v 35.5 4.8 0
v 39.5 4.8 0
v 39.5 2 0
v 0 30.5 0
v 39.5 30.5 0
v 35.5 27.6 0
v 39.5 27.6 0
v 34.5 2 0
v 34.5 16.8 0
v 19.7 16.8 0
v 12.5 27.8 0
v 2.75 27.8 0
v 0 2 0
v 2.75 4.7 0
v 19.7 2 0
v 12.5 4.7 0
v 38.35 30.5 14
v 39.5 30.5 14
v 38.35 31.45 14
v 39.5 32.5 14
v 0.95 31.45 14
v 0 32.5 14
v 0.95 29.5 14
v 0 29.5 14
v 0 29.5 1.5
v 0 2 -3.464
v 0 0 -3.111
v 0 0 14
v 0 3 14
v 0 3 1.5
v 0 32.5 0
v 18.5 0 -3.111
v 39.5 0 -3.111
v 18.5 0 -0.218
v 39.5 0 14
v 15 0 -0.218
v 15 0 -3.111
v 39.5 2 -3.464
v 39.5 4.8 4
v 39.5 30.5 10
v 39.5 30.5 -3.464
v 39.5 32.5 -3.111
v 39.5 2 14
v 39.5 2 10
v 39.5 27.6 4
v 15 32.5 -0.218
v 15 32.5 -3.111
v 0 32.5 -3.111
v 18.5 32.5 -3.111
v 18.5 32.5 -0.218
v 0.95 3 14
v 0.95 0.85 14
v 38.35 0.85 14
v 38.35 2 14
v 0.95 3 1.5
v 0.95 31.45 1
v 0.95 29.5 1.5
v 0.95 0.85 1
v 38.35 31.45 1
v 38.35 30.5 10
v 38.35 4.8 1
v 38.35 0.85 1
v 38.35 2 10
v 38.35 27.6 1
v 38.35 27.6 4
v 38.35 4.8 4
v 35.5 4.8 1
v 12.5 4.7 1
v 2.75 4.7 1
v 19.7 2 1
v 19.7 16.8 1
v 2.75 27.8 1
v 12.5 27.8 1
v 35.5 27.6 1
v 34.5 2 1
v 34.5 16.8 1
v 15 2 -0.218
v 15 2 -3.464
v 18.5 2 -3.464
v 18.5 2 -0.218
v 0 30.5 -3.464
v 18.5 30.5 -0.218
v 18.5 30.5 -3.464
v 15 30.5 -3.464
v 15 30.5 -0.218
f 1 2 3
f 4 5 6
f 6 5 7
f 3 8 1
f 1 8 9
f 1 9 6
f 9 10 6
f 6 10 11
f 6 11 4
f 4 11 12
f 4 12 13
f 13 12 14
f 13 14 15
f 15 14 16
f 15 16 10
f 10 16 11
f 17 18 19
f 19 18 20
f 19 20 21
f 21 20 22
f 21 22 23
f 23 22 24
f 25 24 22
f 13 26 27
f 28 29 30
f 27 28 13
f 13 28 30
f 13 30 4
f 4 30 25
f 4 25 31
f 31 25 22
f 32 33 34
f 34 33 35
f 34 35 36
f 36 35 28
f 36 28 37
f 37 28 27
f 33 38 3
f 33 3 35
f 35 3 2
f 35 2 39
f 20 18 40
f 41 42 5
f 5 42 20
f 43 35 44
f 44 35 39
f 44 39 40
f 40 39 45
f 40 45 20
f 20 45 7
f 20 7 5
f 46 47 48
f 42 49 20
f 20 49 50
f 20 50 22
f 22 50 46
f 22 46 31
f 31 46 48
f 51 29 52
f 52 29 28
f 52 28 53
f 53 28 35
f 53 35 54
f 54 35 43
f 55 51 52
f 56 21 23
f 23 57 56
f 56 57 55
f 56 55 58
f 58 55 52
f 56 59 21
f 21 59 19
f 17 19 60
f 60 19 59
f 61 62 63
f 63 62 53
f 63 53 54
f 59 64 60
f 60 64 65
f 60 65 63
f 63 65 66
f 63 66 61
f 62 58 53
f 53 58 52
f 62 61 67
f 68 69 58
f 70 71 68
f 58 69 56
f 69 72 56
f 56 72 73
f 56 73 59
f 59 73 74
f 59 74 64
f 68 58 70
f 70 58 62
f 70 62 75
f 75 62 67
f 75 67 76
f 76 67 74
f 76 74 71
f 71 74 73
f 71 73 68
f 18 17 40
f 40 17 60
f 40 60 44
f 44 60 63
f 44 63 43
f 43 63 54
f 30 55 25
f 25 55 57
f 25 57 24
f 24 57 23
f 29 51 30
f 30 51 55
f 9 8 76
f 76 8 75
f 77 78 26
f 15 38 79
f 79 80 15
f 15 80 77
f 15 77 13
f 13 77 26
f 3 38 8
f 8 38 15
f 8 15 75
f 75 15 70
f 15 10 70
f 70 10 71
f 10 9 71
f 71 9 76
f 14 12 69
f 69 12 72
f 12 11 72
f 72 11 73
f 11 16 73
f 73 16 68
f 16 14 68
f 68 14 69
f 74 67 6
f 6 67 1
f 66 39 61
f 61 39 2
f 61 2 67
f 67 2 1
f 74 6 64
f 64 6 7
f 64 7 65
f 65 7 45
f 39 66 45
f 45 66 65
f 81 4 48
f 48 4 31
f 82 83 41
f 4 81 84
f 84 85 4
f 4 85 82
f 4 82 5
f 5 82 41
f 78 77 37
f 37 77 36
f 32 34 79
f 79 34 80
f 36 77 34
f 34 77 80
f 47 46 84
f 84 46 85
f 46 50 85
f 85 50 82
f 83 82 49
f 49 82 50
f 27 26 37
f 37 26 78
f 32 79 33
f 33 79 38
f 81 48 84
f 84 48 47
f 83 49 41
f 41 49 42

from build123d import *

# Parameters (mm, degrees)
ESQUISSE1_W              = 39.5
ESQUISSE1_H              = 32.5
BOSS_EXTRU_1_DEPTH       = 14
ESQUISSE2_W              = 37.4
ESQUISSE2_H              = 30.6
ENL_V_MAT_EXTRU_1_DEPTH  = 13
ESQUISSE3_W              = 4
ESQUISSE3_H              = 28.5
ENL_V_MAT_EXTRU_2_DEPTH  = 5
ESQUISSE4_W              = 12.5
ESQUISSE4_H              = 26.5
ENL_V_MAT_EXTRU_3_DEPTH  = 5
ESQUISSE6_W              = 14.8
ESQUISSE6_H              = 14.8
ENL_V_MAT_EXTRU_5_DEPTH  = 53.777836257
ESQUISSE7_W              = 9.75
ESQUISSE7_H              = 23.1
ENL_V_MAT_EXTRU_6_DEPTH  = 53.777836257
ESQUISSE8_W              = 4
ESQUISSE8_H              = 22.8
BOSS_EXTRU_3_DEPTH       = 1
ESQUISSE8_2_W            = 4
ESQUISSE8_2_H            = 22.8
ENL_V_MAT_EXTRU_7_DEPTH  = 1
ESQUISSE9_W              = 3
ESQUISSE9_H              = 22.8
ENL_V_MAT_EXTRU_9_DEPTH  = 1.2
BOSS_EXTRU_6_DEPTH       = 2
BOSS_EXTRU_7_DEPTH       = 2
ESQUISSE14_W             = 40
ESQUISSE14_H             = 9.401923789
ENL_V_MAT_EXTRU_10_DEPTH = 54.033008589
ESQUISSE15_W             = 3.5
ESQUISSE15_H             = 4
ENL_V_MAT_EXTRU_11_DEPTH = 54.033008589
CHANFREIN1_SIZE          = 0.352653961
CHANFREIN1_SIZE_2        = 2


with BuildPart() as part:
    # Esquisse1 → Boss.-Extru.1 (new body)
    with BuildSketch(Plane.XY):
        with Locations((19.75, 16.25)):
            Rectangle(ESQUISSE1_W, ESQUISSE1_H)
    extrude(amount=BOSS_EXTRU_1_DEPTH)

    # Esquisse2 → Enlèv. mat.-Extru.1 (cut)
    with BuildSketch(Plane.XY.offset(14)):
        with Locations((19.65, 16.15)):
            Rectangle(ESQUISSE2_W, ESQUISSE2_H)
    extrude(amount=-ENL_V_MAT_EXTRU_1_DEPTH, mode=Mode.SUBTRACT)

    # Esquisse3 → Enlèv. mat.-Extru.2 (cut)
    with BuildSketch(Plane(origin=(39.5, 0, 0), x_dir=(0, 0, -1), z_dir=(1, 0, 0))):
        with Locations((-12, 16.25)):
            Rectangle(ESQUISSE3_W, ESQUISSE3_H)
    extrude(amount=-ENL_V_MAT_EXTRU_2_DEPTH, mode=Mode.SUBTRACT)

    # Esquisse4 → Enlèv. mat.-Extru.3 (cut)
    with BuildSketch(Plane.ZY):
        with Locations((7.75, 16.25)):
            Rectangle(ESQUISSE4_W, ESQUISSE4_H)
    extrude(amount=-ENL_V_MAT_EXTRU_3_DEPTH, mode=Mode.SUBTRACT)

    # Esquisse6 → Enlèv. mat.-Extru.5 (cut, through all)
    with BuildSketch(Plane.XY.offset(1)):
        with Locations((27.1, 9.4)):
            Rectangle(ESQUISSE6_W, ESQUISSE6_H)
    extrude(amount=-ENL_V_MAT_EXTRU_5_DEPTH, mode=Mode.SUBTRACT)

    # Esquisse7 → Enlèv. mat.-Extru.6 (cut, through all)
    with BuildSketch(Plane.XY.offset(1)):
        with Locations((7.625, 16.25)):
            Rectangle(ESQUISSE7_W, ESQUISSE7_H)
    extrude(amount=-ENL_V_MAT_EXTRU_6_DEPTH, mode=Mode.SUBTRACT)

    # Esquisse8 → Boss.-Extru.3 (add)
    with BuildSketch(Plane(origin=(0, 0, 0), x_dir=(-1, 0, 0), z_dir=(0, 0, -1))):
        with Locations((-37.5, 16.2)):
            Rectangle(ESQUISSE8_W, ESQUISSE8_H)
    extrude(amount=-BOSS_EXTRU_3_DEPTH)

    # Esquisse8<2> → Enlèv. mat.-Extru.7 (cut)
    with BuildSketch(Plane(origin=(0, 0, 0), x_dir=(-1, 0, 0), z_dir=(0, 0, -1))):
        with Locations((-37.5, 16.2)):
            Rectangle(ESQUISSE8_2_W, ESQUISSE8_2_H)
    extrude(amount=-ENL_V_MAT_EXTRU_7_DEPTH, mode=Mode.SUBTRACT)

    # Esquisse9 → Enlèv. mat.-Extru.9 (cut)
    with BuildSketch(Plane(origin=(39.5, 0, 0), x_dir=(0, 0, -1), z_dir=(1, 0, 0))):
        with Locations((-2.5, 16.2)):
            Rectangle(ESQUISSE9_W, ESQUISSE9_H)
    extrude(amount=-ENL_V_MAT_EXTRU_9_DEPTH, mode=Mode.SUBTRACT)

    # Esquisse12 → Boss.-Extru.6 (add)
    with BuildSketch(Plane(origin=(0, 32.5, 0), x_dir=(1, 0, 0), z_dir=(0, 1, 0))):
        Polygon((0, 0), (-0.001437079, 12), (39.5, 10), (39.5, 0), align=None)
    extrude(amount=-BOSS_EXTRU_6_DEPTH)

    # Esquisse13 → Boss.-Extru.7 (add)
    with BuildSketch(Plane.XZ):
        Polygon((39.5, 0), (39.5, -9.999999903), (0, -12), (0, 0), align=None)
    extrude(amount=-BOSS_EXTRU_7_DEPTH)

    # Esquisse14 → Enlèv. mat.-Extru.10 (cut, through all)
    with BuildSketch(Plane(origin=(0, 0, 0), x_dir=(-1, 0, 0), z_dir=(0, -1, 0))):
        with Locations((-19.5, 8.165063509)):
            Rectangle(ESQUISSE14_W, ESQUISSE14_H)
    extrude(amount=-ENL_V_MAT_EXTRU_10_DEPTH, mode=Mode.SUBTRACT)

    # Esquisse15 → Enlèv. mat.-Extru.11 (cut, through all)
    with BuildSketch(Plane(origin=(0, 0, 0), x_dir=(-1, 0, 0), z_dir=(0, -1, 0))):
        with Locations((-16.75, 2.218139361)):
            Rectangle(ESQUISSE15_W, ESQUISSE15_H)
    extrude(amount=-ENL_V_MAT_EXTRU_11_DEPTH, mode=Mode.SUBTRACT)

    # Chanfrein1
    # the kernel refuses this chamfer: 2, 0.352653961 mm, written as the material it takes off along each edge
    with BuildSketch(Plane(origin=(-5.197077593, 0, -3.464101615), x_dir=(0, -0.21013876076743054, 0.9776715712462588), z_dir=(1, 0, 0))) as chanfrein1_piece_1:
        Polygon((CHANFREIN1_SIZE * 0.977671572402, -CHANFREIN1_SIZE * 0.210138761016), (-CHANFREIN1_SIZE_2 * 0.210138760767, -CHANFREIN1_SIZE_2 * 0.977671571246), (0, 0), align=None)
    extrude(amount=25.394155186, mode=Mode.SUBTRACT)
    with BuildSketch(Plane(origin=(13.302922407, 0, -3.464101615), x_dir=(0, -0.2101387607674303, 0.9776715712462589), z_dir=(1, 0, 0))) as chanfrein1_piece_2:
        Polygon((CHANFREIN1_SIZE * 0.977671572402, -CHANFREIN1_SIZE * 0.210138761016), (-CHANFREIN1_SIZE_2 * 0.210138760767, -CHANFREIN1_SIZE_2 * 0.977671571246), (0, 0), align=None)
    extrude(amount=31.394155186, mode=Mode.SUBTRACT)
    with BuildSketch(Plane(origin=(-5.197492442, 32.5, -3.464101615), x_dir=(0, 0.21013876076742352, 0.9776715712462605), z_dir=(1, 0, 0))) as chanfrein1_piece_3:
        Polygon((CHANFREIN1_SIZE * 0.977671572402, CHANFREIN1_SIZE * 0.210138761016), (-CHANFREIN1_SIZE_2 * 0.210138760767, CHANFREIN1_SIZE_2 * 0.977671571246), (0, 0), align=None)
    extrude(amount=25.394570035, mode=Mode.SUBTRACT)
    with BuildSketch(Plane(origin=(13.302922407, 32.5, -3.464101615), x_dir=(0, 0.21013876076742327, 0.9776715712462605), z_dir=(1, 0, 0))) as chanfrein1_piece_4:
        Polygon((CHANFREIN1_SIZE * 0.977671572402, CHANFREIN1_SIZE * 0.210138761016), (-CHANFREIN1_SIZE_2 * 0.210138760767, CHANFREIN1_SIZE_2 * 0.977671571246), (0, 0), align=None)
    extrude(amount=31.394155186, mode=Mode.SUBTRACT)


solid = part.part
